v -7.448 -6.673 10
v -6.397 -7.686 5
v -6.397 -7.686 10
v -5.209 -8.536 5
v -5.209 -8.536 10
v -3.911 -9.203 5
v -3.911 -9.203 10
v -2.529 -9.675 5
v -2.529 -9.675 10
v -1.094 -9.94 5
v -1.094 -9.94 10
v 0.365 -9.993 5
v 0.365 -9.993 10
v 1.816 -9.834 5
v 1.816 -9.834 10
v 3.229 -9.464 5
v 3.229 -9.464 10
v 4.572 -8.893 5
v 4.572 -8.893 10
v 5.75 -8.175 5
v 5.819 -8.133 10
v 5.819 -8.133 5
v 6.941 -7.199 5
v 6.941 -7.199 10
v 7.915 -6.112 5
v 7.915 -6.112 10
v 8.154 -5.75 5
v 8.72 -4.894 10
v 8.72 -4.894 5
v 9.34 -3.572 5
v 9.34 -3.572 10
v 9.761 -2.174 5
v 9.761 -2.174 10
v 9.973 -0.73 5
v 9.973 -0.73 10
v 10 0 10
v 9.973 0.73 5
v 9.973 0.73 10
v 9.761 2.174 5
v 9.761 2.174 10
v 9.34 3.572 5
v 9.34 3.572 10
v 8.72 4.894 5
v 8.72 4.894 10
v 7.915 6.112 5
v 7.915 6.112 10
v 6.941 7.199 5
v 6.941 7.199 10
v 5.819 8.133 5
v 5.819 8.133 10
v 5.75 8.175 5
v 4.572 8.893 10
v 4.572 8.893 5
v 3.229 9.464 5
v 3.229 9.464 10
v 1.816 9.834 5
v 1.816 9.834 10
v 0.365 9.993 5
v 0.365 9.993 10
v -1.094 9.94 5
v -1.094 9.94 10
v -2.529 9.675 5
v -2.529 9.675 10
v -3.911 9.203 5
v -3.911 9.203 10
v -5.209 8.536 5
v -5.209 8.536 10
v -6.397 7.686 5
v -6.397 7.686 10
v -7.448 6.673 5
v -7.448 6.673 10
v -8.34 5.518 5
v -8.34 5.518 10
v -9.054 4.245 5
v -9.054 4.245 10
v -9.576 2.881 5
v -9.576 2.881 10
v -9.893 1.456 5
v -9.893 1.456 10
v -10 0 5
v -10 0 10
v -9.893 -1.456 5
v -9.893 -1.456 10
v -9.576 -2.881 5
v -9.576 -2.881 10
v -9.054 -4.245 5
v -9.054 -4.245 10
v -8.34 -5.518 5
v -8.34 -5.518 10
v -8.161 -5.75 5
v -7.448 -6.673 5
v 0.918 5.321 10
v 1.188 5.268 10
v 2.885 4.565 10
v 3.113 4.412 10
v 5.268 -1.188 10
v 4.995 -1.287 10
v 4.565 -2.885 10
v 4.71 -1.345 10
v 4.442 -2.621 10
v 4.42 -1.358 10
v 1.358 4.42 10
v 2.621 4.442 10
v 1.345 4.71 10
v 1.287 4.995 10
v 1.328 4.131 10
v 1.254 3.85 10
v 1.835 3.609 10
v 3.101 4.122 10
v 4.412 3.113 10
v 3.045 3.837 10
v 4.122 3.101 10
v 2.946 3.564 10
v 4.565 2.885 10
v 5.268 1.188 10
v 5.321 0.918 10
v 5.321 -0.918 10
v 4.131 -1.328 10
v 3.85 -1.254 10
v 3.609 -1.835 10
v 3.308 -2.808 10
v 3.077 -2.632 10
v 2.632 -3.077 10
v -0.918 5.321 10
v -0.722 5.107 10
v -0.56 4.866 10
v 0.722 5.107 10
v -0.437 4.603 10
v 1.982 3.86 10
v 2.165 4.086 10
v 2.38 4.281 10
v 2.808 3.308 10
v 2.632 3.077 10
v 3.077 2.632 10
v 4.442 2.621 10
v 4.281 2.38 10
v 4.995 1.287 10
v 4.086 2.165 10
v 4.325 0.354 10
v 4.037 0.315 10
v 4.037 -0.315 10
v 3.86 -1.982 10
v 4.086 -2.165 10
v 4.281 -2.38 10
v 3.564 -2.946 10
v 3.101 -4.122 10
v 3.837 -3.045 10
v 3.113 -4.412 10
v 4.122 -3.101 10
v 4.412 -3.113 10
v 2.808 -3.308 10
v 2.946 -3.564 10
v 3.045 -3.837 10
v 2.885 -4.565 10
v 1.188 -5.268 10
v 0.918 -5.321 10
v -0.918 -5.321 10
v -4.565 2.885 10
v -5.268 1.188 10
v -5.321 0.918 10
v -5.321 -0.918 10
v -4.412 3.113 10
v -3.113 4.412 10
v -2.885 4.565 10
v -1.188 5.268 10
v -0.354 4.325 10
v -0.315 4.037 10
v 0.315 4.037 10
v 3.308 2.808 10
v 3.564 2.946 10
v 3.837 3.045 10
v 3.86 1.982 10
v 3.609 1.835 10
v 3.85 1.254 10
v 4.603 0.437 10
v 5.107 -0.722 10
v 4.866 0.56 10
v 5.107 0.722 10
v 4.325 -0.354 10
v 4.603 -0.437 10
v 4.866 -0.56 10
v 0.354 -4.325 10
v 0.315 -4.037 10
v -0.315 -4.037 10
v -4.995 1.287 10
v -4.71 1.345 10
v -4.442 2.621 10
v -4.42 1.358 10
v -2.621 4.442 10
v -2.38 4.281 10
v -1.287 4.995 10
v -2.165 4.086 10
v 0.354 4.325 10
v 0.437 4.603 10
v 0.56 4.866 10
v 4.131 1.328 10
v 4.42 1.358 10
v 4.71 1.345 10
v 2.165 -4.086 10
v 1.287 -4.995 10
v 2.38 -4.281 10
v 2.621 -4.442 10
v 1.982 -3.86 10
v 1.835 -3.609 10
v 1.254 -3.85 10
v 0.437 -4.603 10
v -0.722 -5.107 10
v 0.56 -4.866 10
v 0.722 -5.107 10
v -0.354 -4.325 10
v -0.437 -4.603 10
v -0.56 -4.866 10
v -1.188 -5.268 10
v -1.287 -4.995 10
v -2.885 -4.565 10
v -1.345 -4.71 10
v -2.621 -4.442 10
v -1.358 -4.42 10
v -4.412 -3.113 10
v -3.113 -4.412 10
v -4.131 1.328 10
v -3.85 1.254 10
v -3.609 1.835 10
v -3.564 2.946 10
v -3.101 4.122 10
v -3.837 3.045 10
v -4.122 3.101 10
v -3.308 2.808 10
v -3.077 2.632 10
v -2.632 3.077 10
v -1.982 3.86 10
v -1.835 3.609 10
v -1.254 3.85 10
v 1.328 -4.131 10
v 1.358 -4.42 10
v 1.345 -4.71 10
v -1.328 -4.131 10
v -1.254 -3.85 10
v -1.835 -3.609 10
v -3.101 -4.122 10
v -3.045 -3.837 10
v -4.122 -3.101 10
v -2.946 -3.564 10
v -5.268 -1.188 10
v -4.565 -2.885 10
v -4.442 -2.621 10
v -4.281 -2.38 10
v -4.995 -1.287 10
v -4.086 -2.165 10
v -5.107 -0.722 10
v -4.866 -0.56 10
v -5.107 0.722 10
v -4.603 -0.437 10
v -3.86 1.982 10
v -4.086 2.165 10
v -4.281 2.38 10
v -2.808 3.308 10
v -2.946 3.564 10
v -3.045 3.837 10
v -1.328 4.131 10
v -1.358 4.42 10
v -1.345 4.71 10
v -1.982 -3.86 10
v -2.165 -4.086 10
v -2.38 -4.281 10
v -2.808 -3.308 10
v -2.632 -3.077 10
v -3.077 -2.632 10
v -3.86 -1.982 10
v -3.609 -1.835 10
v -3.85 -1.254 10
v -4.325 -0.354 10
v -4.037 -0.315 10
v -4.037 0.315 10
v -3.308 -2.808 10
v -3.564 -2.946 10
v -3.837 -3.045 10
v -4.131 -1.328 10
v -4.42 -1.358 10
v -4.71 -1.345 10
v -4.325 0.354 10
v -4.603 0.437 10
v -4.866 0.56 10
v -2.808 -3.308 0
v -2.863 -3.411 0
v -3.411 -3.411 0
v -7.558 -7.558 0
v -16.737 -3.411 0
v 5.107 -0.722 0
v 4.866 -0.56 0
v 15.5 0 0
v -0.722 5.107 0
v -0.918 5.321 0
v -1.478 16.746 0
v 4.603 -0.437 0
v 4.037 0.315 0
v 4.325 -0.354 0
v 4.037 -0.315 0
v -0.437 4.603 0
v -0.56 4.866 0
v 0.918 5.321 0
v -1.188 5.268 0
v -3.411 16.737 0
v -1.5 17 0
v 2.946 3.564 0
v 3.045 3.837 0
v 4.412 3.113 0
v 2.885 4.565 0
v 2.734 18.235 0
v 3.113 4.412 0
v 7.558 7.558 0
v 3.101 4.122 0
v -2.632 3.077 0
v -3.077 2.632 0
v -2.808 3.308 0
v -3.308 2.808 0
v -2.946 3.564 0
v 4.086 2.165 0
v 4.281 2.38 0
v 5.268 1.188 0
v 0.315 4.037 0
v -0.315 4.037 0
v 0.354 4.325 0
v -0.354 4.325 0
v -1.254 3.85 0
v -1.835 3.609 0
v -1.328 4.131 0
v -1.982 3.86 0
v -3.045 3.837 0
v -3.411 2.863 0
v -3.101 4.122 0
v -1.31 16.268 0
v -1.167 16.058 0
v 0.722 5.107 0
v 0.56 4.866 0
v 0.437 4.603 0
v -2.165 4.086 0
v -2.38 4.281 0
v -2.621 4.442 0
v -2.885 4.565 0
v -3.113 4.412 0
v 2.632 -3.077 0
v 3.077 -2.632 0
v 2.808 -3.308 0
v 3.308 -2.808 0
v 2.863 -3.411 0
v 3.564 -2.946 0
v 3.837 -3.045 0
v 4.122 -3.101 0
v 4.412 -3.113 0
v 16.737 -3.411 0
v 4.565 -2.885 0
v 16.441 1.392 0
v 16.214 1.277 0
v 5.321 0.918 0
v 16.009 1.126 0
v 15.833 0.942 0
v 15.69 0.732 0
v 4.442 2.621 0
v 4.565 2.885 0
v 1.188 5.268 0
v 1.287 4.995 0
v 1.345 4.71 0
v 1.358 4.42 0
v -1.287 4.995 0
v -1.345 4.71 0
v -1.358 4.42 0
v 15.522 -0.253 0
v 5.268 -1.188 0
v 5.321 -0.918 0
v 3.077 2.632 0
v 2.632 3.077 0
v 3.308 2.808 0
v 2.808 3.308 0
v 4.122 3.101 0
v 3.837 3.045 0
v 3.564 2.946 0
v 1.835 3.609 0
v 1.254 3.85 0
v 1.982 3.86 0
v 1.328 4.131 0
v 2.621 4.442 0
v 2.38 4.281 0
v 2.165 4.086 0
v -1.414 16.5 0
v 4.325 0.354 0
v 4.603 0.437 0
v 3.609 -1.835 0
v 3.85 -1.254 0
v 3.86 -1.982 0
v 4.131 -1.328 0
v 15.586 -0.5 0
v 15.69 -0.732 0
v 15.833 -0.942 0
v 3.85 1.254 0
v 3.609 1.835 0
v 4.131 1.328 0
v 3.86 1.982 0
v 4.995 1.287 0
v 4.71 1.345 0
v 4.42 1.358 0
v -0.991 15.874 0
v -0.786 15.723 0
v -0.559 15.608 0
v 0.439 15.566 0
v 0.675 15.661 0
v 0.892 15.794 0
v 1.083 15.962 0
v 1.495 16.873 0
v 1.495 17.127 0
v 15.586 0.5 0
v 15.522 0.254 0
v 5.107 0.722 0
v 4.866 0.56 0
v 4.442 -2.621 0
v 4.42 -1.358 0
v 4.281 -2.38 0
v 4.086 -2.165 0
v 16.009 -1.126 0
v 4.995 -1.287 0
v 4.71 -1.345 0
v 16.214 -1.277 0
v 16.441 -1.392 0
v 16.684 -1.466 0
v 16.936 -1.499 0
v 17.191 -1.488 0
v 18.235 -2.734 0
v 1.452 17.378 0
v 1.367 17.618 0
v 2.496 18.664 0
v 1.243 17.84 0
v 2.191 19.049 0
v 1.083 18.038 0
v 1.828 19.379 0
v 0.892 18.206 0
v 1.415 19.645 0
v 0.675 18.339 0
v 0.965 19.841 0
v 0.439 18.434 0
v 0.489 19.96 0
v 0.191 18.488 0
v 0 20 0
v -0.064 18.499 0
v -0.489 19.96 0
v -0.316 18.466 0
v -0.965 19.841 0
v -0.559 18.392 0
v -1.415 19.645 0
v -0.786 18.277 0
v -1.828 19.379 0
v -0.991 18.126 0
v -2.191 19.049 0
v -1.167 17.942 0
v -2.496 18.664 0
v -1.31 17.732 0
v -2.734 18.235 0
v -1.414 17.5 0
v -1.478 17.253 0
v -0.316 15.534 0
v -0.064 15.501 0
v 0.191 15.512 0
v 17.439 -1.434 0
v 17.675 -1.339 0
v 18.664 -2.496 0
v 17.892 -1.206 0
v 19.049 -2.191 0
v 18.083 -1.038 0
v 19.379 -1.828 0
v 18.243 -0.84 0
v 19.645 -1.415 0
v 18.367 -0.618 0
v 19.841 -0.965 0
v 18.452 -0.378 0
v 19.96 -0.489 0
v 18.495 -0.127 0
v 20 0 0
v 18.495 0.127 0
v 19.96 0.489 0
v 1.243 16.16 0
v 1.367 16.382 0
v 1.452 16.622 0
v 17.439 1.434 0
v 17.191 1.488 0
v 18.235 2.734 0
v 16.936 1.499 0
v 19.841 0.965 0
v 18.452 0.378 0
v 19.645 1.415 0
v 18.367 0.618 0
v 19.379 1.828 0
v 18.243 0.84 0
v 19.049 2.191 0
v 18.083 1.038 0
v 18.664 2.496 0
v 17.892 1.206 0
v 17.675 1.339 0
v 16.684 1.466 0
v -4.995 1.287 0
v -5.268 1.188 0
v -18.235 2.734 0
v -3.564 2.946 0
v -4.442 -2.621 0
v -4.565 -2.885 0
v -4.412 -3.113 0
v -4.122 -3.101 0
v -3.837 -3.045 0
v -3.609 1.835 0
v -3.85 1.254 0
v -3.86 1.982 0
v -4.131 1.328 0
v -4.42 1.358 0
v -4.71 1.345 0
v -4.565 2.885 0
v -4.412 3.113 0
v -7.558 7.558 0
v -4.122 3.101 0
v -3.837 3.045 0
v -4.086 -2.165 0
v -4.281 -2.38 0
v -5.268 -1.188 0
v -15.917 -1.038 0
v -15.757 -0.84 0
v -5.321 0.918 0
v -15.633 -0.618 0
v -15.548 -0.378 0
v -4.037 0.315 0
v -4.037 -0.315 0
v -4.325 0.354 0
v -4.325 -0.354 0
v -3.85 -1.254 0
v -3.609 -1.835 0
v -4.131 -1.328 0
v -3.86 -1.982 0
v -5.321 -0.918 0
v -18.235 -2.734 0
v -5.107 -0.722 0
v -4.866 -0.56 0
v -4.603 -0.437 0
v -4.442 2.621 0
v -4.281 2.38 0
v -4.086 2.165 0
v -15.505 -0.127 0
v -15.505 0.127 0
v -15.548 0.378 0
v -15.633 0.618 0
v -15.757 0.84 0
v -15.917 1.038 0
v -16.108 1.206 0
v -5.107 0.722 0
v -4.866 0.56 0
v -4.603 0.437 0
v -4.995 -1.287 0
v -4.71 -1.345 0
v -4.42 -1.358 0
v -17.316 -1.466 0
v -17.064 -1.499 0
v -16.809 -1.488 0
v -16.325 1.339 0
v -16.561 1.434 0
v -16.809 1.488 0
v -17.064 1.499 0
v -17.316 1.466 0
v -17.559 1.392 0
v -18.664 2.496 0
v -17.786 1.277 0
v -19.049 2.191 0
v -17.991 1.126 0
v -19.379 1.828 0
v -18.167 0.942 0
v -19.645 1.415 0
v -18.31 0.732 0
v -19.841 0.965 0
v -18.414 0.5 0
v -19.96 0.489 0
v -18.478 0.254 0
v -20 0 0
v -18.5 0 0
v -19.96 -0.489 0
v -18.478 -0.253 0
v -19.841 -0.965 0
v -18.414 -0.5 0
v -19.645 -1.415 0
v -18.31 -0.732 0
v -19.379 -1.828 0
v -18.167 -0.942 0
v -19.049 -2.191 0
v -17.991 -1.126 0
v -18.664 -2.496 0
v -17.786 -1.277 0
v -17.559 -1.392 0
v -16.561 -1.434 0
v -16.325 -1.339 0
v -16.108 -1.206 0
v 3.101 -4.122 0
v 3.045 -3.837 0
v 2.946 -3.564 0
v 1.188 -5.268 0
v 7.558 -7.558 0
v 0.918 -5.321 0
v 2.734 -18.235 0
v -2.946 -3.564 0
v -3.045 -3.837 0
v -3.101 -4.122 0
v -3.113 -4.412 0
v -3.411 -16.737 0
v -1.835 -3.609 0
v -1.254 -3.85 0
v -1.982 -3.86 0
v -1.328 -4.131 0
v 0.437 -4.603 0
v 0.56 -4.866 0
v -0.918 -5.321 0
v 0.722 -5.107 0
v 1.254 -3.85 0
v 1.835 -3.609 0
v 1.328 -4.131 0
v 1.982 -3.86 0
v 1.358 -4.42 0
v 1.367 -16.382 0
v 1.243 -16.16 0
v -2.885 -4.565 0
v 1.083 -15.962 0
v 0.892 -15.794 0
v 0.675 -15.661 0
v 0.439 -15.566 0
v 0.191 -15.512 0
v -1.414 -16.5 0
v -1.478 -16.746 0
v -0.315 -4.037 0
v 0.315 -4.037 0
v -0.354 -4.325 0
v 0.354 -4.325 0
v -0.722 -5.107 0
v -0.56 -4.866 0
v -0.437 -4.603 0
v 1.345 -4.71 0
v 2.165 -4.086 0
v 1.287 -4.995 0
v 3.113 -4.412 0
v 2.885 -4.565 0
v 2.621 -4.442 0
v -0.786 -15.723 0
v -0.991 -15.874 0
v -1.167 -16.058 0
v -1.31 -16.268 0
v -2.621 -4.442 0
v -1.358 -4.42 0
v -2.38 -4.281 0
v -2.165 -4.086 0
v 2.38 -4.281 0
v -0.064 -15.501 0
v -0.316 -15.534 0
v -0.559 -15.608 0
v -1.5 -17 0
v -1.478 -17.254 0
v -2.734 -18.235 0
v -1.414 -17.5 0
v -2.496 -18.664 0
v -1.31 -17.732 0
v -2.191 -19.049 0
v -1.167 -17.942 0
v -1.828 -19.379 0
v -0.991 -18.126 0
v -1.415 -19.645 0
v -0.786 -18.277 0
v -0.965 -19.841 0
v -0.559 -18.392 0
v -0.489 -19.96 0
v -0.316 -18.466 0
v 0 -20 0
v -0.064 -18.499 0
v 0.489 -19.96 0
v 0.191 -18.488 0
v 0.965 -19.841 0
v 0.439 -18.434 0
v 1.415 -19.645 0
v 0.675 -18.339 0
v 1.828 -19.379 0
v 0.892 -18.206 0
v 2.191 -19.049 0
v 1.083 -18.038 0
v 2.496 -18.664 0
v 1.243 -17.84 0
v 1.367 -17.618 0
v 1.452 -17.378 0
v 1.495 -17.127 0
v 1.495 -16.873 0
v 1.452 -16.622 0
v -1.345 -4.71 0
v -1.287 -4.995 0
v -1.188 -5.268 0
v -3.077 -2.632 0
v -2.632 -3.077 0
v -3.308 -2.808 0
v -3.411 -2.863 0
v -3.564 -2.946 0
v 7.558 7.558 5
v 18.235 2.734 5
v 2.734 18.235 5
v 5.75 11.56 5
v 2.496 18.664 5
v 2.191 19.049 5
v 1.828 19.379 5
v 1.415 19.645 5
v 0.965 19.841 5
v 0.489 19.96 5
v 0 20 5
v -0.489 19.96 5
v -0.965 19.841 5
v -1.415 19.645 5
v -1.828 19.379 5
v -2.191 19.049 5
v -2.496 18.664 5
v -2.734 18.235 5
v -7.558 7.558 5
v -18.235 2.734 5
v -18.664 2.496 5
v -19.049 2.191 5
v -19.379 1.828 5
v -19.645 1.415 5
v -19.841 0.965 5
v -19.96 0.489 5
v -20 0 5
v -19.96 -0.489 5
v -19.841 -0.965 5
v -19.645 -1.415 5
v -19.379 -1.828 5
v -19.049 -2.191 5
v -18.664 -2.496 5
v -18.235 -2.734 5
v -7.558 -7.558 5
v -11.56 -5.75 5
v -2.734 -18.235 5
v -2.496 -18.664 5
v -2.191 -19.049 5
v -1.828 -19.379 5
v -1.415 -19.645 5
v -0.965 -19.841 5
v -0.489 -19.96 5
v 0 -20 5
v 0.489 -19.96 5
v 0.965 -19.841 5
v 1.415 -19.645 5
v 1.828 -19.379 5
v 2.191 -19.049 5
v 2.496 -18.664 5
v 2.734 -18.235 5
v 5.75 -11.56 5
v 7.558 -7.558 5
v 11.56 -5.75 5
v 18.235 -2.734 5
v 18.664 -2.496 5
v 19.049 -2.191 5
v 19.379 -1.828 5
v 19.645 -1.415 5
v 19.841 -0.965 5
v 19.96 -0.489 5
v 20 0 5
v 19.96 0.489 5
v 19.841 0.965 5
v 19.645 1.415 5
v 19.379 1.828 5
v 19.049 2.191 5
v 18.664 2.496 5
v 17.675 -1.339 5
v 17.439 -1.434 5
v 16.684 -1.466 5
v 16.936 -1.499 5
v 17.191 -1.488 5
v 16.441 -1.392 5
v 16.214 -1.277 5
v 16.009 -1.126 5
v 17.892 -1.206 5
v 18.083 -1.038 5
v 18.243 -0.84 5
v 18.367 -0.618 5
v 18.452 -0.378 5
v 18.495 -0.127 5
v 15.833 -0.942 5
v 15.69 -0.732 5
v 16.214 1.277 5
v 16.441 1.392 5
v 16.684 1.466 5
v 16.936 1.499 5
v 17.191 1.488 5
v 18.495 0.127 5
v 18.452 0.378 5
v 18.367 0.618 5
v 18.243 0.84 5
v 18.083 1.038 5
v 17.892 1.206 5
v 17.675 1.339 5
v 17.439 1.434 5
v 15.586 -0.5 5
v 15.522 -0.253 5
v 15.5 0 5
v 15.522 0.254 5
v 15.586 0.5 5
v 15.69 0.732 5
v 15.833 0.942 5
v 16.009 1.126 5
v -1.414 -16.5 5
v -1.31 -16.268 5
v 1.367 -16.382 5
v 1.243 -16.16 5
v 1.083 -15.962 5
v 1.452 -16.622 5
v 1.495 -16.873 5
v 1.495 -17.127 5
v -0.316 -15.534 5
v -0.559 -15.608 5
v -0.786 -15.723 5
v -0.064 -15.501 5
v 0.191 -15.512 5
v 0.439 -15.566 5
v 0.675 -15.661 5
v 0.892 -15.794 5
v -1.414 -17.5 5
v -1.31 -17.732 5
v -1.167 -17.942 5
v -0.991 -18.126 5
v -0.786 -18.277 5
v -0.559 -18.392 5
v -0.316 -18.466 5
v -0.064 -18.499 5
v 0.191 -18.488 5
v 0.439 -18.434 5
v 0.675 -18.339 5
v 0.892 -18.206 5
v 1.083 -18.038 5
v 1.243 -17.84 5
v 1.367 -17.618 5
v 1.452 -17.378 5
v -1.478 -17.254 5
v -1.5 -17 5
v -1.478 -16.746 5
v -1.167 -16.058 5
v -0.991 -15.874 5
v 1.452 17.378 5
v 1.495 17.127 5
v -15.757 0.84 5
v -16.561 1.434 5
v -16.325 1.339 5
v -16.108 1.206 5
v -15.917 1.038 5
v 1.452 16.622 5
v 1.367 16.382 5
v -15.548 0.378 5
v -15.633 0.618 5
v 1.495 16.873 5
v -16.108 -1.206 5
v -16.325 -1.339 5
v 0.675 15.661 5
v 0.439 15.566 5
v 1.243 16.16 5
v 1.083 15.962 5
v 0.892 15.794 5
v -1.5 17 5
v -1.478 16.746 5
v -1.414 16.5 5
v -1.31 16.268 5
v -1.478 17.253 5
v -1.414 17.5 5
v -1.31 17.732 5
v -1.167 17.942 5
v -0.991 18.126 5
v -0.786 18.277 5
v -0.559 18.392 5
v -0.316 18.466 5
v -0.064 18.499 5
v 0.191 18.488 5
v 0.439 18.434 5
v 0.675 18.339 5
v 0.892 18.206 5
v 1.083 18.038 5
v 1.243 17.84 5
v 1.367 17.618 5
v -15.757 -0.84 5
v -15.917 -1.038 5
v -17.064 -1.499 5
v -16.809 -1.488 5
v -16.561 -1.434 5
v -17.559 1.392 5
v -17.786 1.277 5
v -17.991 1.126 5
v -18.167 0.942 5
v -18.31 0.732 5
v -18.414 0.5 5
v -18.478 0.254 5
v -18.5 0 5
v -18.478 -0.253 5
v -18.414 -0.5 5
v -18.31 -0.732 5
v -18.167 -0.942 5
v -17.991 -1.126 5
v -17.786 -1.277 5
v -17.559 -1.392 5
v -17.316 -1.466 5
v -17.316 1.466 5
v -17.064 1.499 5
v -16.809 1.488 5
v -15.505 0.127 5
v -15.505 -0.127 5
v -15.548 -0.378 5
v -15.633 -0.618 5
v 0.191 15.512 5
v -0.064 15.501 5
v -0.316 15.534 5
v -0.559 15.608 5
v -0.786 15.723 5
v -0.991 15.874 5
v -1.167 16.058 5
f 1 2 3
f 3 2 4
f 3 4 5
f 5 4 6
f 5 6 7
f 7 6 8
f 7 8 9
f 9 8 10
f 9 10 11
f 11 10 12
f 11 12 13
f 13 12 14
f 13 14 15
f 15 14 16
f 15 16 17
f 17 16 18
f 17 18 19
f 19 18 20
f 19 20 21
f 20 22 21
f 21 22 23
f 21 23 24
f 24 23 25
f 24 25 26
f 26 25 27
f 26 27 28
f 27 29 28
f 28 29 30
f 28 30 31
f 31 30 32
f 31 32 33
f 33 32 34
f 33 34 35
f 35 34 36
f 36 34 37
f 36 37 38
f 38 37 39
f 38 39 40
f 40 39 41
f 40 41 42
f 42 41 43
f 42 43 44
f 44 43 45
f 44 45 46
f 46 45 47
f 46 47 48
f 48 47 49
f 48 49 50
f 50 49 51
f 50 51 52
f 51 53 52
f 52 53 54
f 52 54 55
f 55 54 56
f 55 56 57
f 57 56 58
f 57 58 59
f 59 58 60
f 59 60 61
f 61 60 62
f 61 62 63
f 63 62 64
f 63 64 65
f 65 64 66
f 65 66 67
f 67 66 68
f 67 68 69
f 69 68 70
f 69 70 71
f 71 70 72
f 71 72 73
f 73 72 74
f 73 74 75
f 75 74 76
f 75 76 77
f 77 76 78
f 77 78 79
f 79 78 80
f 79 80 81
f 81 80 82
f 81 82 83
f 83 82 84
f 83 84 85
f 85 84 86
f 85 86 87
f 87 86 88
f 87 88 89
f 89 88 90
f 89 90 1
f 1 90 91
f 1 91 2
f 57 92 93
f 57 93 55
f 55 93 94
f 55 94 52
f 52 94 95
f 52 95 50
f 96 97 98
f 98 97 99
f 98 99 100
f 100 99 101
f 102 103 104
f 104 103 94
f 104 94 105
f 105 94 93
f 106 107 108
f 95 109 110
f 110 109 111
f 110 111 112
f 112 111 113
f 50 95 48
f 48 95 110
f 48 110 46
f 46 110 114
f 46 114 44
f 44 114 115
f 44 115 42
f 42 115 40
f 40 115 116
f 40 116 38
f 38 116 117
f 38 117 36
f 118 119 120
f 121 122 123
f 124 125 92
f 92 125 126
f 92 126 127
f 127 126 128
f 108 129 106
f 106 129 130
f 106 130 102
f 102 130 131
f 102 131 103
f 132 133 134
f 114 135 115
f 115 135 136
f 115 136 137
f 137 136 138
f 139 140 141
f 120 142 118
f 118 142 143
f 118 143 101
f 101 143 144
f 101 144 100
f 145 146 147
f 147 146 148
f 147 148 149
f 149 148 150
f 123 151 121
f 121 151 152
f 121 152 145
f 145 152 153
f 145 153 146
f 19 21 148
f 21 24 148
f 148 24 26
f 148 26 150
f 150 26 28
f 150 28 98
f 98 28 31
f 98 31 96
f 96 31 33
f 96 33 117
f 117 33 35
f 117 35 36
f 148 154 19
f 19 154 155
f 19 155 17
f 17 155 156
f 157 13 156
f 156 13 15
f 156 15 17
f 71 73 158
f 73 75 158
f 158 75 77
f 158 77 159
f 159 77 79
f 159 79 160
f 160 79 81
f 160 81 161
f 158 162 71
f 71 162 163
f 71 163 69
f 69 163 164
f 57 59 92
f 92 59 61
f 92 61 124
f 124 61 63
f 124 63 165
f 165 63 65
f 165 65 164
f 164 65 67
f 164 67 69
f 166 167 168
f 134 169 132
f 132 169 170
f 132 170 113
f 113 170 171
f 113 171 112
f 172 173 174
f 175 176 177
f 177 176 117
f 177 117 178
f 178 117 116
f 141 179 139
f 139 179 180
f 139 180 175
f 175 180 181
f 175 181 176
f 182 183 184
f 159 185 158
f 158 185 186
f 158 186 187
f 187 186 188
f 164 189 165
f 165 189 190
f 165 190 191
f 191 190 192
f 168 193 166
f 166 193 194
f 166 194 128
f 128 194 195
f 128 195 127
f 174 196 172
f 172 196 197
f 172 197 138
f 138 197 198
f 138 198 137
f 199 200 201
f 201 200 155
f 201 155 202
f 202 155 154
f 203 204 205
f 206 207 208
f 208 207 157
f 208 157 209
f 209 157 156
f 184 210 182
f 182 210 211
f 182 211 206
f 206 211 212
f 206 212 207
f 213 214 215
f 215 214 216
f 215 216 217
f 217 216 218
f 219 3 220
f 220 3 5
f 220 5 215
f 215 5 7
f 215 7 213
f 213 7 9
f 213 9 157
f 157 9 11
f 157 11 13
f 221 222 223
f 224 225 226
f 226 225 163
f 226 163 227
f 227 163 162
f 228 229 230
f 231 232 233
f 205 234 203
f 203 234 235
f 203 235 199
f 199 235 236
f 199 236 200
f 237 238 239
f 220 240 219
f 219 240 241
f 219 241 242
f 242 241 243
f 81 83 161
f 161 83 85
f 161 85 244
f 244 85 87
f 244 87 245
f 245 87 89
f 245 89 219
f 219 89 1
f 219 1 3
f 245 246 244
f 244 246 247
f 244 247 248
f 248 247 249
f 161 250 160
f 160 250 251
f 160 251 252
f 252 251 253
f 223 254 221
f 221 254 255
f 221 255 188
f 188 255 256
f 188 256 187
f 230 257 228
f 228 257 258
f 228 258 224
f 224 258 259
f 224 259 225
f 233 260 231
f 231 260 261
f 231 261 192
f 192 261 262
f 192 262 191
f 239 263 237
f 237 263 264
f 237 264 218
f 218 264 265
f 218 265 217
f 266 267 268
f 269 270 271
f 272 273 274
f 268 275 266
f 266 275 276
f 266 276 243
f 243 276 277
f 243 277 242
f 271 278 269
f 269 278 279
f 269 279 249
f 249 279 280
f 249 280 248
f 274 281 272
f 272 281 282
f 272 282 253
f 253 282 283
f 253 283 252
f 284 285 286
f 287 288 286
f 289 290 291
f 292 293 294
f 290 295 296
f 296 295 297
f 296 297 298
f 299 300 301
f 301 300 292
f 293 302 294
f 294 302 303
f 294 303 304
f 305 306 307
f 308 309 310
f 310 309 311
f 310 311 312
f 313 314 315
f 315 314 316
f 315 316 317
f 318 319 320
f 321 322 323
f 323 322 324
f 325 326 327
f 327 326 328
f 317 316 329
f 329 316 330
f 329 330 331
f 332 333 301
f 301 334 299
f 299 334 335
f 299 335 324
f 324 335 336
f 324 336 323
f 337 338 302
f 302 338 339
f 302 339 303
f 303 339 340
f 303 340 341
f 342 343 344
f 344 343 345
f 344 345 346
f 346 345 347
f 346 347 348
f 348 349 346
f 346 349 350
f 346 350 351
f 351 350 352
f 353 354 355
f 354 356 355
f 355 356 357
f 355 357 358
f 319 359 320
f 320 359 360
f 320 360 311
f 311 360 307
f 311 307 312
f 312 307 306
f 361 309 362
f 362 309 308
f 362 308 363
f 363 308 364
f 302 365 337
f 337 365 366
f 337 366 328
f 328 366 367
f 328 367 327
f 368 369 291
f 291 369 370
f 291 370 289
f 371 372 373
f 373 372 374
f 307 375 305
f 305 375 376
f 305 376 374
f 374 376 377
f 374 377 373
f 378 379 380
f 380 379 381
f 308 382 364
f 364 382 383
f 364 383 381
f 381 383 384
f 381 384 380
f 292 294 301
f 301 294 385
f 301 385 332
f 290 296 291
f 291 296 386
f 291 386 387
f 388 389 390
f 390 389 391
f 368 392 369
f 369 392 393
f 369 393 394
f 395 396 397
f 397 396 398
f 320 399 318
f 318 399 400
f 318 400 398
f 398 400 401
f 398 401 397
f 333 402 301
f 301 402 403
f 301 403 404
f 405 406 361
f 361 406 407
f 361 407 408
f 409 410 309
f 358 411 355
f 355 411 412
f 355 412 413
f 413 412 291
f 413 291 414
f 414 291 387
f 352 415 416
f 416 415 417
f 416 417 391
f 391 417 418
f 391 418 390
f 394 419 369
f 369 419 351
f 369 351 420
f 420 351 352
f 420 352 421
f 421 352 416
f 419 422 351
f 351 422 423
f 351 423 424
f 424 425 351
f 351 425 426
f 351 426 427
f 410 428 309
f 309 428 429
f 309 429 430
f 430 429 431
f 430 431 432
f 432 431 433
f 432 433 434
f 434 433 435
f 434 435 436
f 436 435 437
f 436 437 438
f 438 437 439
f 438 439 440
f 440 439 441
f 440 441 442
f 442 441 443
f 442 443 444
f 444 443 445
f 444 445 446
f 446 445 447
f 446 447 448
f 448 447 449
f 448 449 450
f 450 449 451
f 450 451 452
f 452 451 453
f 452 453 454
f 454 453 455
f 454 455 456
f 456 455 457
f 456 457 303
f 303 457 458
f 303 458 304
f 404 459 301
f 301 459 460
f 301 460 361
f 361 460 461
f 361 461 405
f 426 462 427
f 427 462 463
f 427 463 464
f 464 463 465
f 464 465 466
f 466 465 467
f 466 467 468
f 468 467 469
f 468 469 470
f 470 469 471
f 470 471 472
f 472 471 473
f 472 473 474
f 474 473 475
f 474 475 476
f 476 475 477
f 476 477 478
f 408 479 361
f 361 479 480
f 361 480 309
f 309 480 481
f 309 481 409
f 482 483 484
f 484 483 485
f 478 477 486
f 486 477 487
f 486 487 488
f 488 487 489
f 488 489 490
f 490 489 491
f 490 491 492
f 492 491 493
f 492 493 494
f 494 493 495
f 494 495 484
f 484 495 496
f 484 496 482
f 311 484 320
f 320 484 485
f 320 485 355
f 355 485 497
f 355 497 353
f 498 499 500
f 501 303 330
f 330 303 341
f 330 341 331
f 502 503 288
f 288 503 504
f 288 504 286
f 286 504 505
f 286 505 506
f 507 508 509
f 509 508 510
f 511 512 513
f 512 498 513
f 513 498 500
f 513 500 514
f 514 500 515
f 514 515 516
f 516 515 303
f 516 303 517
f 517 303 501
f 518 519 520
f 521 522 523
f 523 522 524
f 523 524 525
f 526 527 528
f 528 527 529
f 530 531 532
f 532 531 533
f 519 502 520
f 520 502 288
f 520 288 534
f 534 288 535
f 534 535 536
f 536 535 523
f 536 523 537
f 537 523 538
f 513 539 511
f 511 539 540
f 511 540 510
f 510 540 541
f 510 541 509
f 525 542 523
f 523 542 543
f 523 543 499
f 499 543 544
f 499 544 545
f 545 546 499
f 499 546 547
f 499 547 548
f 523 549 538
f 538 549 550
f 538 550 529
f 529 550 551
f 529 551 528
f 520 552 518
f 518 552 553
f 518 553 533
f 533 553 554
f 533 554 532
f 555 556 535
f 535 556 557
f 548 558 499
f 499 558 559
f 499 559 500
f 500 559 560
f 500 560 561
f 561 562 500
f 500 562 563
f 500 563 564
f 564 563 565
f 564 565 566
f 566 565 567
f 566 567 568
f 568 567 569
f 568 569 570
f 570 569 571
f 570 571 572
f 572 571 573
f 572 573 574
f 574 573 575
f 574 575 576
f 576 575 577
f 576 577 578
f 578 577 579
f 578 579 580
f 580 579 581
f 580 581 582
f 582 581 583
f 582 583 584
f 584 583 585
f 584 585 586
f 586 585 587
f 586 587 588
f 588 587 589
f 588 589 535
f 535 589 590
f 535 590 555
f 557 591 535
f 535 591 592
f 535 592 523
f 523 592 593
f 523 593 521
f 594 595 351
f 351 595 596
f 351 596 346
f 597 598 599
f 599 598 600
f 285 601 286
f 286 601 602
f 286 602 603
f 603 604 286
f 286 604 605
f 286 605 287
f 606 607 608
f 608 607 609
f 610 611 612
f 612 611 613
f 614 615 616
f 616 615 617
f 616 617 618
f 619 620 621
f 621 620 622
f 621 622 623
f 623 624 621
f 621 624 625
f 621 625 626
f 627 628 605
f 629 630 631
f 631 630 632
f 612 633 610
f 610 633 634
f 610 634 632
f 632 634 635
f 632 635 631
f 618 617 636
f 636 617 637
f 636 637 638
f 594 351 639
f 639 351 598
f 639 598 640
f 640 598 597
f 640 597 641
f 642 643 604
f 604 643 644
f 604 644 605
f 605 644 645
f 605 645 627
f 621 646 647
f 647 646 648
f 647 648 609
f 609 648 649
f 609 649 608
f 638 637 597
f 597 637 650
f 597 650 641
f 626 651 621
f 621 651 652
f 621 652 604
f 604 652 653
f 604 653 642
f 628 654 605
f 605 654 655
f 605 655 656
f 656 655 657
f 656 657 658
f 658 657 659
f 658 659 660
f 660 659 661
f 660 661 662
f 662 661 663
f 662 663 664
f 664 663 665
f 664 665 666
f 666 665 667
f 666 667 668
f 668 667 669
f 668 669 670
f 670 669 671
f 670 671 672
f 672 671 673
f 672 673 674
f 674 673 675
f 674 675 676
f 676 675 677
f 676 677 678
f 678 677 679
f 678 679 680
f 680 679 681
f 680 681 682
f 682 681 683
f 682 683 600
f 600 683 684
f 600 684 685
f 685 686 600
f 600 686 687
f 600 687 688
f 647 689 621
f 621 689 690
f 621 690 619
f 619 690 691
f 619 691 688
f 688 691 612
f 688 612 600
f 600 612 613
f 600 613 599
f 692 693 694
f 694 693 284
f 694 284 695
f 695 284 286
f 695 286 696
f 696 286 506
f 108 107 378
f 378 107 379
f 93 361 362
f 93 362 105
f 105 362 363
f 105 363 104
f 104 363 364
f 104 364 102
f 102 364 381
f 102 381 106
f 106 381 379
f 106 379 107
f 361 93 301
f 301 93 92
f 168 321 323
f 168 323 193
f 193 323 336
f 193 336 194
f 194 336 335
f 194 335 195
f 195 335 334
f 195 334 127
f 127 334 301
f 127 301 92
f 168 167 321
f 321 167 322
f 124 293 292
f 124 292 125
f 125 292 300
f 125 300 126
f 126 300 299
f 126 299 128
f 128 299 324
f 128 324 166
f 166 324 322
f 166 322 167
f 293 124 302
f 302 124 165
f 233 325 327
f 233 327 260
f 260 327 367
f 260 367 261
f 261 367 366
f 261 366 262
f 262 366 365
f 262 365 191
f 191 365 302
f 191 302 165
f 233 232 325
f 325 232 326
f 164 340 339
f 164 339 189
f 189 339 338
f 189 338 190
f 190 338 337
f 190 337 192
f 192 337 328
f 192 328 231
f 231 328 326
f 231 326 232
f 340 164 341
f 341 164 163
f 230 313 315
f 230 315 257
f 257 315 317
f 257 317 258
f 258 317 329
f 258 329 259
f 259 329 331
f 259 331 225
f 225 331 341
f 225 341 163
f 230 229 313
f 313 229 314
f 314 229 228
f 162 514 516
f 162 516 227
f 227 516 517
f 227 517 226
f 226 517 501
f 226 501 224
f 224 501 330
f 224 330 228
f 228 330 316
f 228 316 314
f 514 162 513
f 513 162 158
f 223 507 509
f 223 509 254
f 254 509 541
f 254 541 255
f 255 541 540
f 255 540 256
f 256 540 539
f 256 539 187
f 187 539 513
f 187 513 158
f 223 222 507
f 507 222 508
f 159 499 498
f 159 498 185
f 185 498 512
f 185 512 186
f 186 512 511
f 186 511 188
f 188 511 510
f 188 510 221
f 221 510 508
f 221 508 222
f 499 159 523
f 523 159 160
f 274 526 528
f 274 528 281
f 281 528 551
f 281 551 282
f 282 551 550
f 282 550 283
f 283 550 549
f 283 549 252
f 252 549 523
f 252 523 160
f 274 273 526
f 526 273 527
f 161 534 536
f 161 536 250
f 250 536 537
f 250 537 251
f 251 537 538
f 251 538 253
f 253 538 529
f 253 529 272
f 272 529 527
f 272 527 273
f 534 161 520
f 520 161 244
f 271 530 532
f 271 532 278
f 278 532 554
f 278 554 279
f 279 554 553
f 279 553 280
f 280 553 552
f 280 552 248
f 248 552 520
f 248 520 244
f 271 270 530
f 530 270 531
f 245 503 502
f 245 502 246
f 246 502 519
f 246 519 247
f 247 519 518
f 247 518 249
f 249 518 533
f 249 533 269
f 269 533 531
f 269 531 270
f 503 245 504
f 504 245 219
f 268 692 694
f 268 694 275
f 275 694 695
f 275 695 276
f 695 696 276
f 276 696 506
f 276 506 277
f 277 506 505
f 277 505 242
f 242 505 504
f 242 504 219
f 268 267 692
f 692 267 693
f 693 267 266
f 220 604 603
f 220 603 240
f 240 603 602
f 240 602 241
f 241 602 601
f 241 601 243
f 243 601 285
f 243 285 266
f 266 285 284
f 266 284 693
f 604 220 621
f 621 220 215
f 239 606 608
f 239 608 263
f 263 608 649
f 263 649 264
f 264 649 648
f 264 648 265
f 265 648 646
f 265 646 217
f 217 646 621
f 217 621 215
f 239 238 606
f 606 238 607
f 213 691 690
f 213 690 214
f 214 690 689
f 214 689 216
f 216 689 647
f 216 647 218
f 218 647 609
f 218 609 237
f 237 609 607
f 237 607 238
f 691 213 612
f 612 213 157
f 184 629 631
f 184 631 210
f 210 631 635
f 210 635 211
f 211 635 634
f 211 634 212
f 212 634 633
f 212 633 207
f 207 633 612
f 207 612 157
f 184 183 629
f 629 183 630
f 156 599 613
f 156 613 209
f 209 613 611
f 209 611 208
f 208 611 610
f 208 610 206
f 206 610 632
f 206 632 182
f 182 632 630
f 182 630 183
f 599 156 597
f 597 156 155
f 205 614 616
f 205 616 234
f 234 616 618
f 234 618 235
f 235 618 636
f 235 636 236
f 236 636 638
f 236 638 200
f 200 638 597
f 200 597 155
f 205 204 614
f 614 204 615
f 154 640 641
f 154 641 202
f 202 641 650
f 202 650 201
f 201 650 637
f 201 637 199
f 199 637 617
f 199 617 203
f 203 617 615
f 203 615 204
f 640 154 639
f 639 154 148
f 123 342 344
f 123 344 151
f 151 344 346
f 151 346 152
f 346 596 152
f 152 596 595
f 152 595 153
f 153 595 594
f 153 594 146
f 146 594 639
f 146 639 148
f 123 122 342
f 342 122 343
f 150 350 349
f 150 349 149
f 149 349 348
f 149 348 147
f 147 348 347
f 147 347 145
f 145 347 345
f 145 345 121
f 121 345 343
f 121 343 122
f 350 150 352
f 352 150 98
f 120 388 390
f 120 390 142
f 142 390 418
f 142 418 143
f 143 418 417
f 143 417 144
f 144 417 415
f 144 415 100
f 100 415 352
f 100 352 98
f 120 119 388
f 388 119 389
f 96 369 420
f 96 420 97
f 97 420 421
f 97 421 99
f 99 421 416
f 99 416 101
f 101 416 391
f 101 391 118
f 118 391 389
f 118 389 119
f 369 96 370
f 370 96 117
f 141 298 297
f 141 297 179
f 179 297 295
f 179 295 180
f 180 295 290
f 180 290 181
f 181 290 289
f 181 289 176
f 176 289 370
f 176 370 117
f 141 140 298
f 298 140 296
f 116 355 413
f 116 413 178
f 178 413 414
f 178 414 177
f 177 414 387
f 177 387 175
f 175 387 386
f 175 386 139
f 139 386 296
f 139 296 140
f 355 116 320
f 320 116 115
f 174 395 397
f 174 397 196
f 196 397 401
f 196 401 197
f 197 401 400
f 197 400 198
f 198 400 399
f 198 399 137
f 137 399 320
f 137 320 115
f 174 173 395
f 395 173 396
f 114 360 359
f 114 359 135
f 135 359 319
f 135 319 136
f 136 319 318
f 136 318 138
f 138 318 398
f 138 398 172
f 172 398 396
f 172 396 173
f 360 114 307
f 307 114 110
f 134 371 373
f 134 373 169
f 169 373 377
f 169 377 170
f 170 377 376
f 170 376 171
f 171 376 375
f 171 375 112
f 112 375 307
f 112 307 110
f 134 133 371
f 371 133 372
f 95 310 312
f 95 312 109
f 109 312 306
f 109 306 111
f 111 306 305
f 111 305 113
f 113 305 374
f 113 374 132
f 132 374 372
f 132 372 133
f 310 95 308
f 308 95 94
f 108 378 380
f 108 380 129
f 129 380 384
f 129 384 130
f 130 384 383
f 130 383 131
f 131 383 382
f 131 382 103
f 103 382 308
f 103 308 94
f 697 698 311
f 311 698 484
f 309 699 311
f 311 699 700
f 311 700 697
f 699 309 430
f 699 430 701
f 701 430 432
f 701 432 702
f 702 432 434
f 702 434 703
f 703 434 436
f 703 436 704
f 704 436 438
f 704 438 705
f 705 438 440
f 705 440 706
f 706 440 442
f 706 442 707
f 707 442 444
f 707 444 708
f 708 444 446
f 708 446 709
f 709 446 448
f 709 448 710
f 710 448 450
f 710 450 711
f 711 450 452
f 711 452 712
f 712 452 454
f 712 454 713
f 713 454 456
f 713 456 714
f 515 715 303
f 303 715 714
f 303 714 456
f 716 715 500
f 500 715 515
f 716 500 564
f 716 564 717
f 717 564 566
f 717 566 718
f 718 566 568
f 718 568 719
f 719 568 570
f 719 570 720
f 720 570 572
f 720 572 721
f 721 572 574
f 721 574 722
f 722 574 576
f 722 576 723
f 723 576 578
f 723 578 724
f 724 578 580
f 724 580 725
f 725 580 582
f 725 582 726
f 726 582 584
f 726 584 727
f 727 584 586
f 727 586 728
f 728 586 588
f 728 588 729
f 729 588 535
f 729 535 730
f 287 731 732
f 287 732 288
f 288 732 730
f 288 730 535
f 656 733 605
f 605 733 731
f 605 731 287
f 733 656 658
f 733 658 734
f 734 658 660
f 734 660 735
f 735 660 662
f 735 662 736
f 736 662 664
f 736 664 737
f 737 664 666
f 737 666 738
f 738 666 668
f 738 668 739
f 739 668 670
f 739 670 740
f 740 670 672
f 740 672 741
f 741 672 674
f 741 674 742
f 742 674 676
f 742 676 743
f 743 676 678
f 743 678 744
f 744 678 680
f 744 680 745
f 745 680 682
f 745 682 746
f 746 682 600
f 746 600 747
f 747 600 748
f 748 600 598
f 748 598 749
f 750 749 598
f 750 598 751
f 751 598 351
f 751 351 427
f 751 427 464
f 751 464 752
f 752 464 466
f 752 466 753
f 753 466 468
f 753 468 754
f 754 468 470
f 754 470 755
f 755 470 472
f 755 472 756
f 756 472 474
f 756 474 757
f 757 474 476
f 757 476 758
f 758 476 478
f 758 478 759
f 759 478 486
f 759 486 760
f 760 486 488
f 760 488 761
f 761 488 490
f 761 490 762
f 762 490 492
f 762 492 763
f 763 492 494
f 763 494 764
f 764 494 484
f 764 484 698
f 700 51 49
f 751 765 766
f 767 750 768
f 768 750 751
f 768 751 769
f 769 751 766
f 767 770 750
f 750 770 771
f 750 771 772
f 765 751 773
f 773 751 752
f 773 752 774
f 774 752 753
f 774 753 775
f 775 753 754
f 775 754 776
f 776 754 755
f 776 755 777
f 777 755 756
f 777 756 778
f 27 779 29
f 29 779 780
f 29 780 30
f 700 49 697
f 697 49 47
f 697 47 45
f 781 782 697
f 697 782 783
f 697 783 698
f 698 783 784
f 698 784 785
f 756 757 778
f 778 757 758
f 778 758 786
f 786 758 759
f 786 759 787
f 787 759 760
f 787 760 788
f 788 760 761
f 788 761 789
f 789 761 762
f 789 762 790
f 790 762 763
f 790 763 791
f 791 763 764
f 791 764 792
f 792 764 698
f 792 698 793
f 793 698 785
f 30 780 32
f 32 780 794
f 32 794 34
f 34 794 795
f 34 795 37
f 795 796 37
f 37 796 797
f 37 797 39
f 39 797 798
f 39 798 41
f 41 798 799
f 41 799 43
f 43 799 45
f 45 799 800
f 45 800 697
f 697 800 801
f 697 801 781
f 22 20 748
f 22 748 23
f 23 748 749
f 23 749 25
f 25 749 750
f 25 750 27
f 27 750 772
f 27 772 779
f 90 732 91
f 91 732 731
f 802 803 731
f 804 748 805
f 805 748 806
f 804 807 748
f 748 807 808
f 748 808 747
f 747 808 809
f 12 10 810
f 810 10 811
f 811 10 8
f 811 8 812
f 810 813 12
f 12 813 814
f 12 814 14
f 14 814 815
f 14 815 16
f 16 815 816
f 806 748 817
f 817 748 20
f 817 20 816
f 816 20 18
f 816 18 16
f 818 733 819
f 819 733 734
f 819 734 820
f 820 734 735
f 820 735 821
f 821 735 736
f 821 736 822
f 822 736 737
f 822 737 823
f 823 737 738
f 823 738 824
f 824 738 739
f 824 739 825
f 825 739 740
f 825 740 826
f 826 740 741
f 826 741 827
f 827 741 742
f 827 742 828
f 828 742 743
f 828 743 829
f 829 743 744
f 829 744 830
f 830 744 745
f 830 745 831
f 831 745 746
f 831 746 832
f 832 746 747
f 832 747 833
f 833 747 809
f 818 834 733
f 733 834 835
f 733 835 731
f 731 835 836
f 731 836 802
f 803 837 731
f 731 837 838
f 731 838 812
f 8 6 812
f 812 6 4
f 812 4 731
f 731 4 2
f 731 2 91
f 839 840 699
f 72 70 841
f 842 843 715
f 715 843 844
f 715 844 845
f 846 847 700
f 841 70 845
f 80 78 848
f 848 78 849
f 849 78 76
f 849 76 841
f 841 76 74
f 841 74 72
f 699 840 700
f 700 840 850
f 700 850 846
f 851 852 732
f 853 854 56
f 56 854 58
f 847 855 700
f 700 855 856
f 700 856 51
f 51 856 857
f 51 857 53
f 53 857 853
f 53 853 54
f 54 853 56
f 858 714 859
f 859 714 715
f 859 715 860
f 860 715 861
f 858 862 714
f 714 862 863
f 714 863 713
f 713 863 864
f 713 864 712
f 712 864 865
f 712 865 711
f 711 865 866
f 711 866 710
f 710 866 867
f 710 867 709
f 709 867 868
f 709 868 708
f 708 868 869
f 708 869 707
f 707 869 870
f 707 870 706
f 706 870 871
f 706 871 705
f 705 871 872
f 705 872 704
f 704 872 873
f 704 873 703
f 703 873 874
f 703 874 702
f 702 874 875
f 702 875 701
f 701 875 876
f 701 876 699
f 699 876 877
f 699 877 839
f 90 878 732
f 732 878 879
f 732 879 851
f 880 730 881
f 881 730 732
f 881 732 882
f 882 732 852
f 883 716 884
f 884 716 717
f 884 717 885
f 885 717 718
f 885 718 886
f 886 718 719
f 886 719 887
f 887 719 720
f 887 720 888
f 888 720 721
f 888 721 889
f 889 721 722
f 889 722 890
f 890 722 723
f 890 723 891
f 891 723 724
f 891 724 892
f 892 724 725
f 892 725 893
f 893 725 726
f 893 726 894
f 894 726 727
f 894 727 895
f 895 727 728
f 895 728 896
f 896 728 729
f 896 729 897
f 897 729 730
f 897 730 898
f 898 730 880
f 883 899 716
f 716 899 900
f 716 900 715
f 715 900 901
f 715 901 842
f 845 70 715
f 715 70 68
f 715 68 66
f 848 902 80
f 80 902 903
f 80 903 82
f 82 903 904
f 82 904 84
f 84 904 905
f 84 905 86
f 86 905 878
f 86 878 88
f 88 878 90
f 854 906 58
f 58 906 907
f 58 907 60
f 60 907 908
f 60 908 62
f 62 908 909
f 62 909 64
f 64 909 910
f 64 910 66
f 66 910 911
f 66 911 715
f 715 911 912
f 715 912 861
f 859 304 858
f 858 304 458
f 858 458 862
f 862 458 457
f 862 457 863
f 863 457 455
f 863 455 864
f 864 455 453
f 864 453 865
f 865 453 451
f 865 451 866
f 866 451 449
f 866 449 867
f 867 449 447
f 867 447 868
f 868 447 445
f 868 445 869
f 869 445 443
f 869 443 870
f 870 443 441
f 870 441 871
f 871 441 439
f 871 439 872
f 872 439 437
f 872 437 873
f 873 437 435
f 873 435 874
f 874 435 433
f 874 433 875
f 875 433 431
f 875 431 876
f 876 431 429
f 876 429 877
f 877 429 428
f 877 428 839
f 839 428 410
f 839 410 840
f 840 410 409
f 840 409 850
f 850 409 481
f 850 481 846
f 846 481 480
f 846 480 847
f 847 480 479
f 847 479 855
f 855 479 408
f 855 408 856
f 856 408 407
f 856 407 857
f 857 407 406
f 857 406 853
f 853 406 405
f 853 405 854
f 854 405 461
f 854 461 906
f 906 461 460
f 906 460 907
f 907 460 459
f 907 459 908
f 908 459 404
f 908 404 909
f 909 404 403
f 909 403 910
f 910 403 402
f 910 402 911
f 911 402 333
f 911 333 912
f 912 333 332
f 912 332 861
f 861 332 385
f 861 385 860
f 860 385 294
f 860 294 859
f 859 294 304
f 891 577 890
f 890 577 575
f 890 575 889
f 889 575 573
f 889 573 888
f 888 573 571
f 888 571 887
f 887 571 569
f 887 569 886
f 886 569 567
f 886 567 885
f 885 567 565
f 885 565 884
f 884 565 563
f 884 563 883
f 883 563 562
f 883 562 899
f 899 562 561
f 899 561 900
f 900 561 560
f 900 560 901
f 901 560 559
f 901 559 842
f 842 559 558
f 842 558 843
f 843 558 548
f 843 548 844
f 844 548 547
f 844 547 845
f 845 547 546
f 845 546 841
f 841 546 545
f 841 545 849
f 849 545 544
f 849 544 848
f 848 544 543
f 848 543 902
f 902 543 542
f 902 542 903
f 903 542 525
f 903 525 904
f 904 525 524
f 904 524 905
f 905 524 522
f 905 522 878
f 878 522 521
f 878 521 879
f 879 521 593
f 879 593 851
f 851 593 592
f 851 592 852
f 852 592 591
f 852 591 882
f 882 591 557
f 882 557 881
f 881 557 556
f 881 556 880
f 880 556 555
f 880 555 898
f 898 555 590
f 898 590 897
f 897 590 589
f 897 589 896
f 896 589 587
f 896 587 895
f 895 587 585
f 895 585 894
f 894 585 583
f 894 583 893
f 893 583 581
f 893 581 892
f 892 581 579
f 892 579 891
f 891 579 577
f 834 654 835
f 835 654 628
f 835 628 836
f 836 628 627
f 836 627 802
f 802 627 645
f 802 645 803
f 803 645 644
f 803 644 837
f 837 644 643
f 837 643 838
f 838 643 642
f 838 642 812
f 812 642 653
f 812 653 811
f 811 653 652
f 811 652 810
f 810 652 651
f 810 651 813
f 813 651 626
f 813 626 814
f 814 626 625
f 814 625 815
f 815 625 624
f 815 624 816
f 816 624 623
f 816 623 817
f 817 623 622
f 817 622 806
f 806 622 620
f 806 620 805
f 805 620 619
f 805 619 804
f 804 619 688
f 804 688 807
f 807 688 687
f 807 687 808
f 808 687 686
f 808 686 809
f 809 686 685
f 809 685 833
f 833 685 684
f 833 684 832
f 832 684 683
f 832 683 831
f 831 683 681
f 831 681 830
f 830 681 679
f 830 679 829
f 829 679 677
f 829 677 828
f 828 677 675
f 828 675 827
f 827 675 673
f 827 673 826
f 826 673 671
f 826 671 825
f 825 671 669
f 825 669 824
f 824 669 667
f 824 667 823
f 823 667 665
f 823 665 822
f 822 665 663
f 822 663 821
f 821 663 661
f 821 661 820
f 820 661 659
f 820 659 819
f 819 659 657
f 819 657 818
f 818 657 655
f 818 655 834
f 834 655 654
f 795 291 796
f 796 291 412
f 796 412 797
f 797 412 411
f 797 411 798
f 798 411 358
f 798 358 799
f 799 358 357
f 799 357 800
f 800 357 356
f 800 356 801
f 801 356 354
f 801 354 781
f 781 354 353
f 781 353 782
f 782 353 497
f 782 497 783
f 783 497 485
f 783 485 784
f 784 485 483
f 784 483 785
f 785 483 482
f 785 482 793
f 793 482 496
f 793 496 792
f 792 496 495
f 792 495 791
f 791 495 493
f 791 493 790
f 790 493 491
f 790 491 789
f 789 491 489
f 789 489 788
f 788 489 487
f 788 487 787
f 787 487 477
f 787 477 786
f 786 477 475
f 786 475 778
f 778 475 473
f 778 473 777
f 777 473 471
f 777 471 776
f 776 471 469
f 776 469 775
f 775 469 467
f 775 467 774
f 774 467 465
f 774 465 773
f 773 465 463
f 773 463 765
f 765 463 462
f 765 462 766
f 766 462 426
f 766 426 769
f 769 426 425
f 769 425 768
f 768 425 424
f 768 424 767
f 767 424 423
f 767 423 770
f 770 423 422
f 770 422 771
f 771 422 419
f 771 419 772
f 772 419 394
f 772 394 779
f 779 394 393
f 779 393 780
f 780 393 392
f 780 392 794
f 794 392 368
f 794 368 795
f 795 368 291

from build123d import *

# Parameters (mm, degrees)
CROQUIS1_R                 = 10
CROQUIS1_R_2               = 2
SALIENTE_EXTRUIR1_DEPTH    = 10
CORTAR_EXTRUIR1_DEPTH      = 10
CORTAR_EXTRUIR1_DEPTH_BACK = 20
CROQUIS3_R                 = 1.5
CROQUIS3_R_2               = 10
SALIENTE_EXTRUIR2_DEPTH    = 5


with BuildPart() as part:
    # Croquis1 → Saliente-Extruir1 (new body)
    with BuildSketch(Plane.XY):
        Circle(CROQUIS1_R)
        Circle(CROQUIS1_R_2, mode=Mode.SUBTRACT)
    extrude(amount=SALIENTE_EXTRUIR1_DEPTH)

    # Croquis2 → Cortar-Extruir1 (cut, two sides: drawn at the far end of the back side and taken through both)
    with BuildSketch(Plane.XY.offset(10).offset(-CORTAR_EXTRUIR1_DEPTH_BACK)):
        with BuildLine():
            Line((0.91835658, 5.32133641), (1.187936434, 5.267713643))
            ThreePointArc((1.187936434, 5.267713643), (1.356901071, 4.56513254), (1.254199065, 3.849855284))
            ThreePointArc((1.254199065, 3.849855284), (1.549485218, 3.740788227), (1.835406113, 3.609111442))
            ThreePointArc((1.835406113, 3.609111442), (2.268562227, 4.187510125), (2.88483813, 4.564833947))
            Line((2.88483813, 4.564833947), (3.113376895, 4.412129226))
            ThreePointArc((3.113376895, 4.412129226), (3.000613717, 3.698368958), (2.63200468, 3.076841296))
            ThreePointArc((2.63200468, 3.076841296), (2.863075357, 2.863075357), (3.076841296, 2.63200468))
            ThreePointArc((3.076841296, 2.63200468), (3.698368958, 3.000613717), (4.412129226, 3.113376895))
            Line((4.412129226, 3.113376895), (4.564833947, 2.88483813))
            ThreePointArc((4.564833947, 2.88483813), (4.187510125, 2.268562227), (3.609111442, 1.835406113))
            ThreePointArc((3.609111442, 1.835406113), (3.740788227, 1.549485218), (3.849855284, 1.254199065))
            ThreePointArc((3.849855284, 1.254199065), (4.56513254, 1.356901071), (5.267713643, 1.187936434))
            Line((5.267713643, 1.187936434), (5.32133641, 0.91835658))
            ThreePointArc((5.32133641, 0.91835658), (4.736896076, 0.493387462), (4.036763703, 0.314546988))
            ThreePointArc((4.036763703, 0.314546988), (4.049, 0), (4.036763703, -0.314546988))
            ThreePointArc((4.036763703, -0.314546988), (4.736896076, -0.493387462), (5.32133641, -0.91835658))
            Line((5.32133641, -0.91835658), (5.267713643, -1.187936434))
            ThreePointArc((5.267713643, -1.187936434), (4.56513254, -1.356901071), (3.849855284, -1.254199065))
            ThreePointArc((3.849855284, -1.254199065), (3.740788227, -1.549485218), (3.609111442, -1.835406113))
            ThreePointArc((3.609111442, -1.835406113), (4.187510125, -2.268562227), (4.564833947, -2.88483813))
            Line((4.564833947, -2.88483813), (4.412129226, -3.113376895))
            ThreePointArc((4.412129226, -3.113376895), (3.698368958, -3.000613717), (3.076841296, -2.63200468))
            ThreePointArc((3.076841296, -2.63200468), (2.863075357, -2.863075357), (2.63200468, -3.076841296))
            ThreePointArc((2.63200468, -3.076841296), (3.000613717, -3.698368958), (3.113376895, -4.412129226))
            Line((3.113376895, -4.412129226), (2.88483813, -4.564833947))
            ThreePointArc((2.88483813, -4.564833947), (2.268562227, -4.187510125), (1.835406113, -3.609111442))
            ThreePointArc((1.835406113, -3.609111442), (1.549485218, -3.740788227), (1.254199065, -3.849855284))
            ThreePointArc((1.254199065, -3.849855284), (1.356901071, -4.56513254), (1.187936434, -5.267713643))
            Line((1.187936434, -5.267713643), (0.91835658, -5.32133641))
            ThreePointArc((0.91835658, -5.32133641), (0.493387462, -4.736896076), (0.314546988, -4.036763703))
            ThreePointArc((0.314546988, -4.036763703), (0, -4.049), (-0.314546988, -4.036763703))
            ThreePointArc((-0.314546988, -4.036763703), (-0.493387462, -4.736896076), (-0.91835658, -5.32133641))
            Line((-0.91835658, -5.32133641), (-1.187936434, -5.267713643))
            ThreePointArc((-1.187936434, -5.267713643), (-1.356901071, -4.56513254), (-1.254199065, -3.849855284))
            ThreePointArc((-1.254199065, -3.849855284), (-1.549485218, -3.740788227), (-1.835406113, -3.609111442))
            ThreePointArc((-1.835406113, -3.609111442), (-2.268562227, -4.187510125), (-2.88483813, -4.564833947))
            Line((-2.88483813, -4.564833947), (-3.113376895, -4.412129226))
            ThreePointArc((-3.113376895, -4.412129226), (-3.000613717, -3.698368958), (-2.63200468, -3.076841296))
            ThreePointArc((-2.63200468, -3.076841296), (-2.863075357, -2.863075357), (-3.076841296, -2.63200468))
            ThreePointArc((-3.076841296, -2.63200468), (-3.698368958, -3.000613717), (-4.412129226, -3.113376895))
            Line((-4.412129226, -3.113376895), (-4.564833947, -2.88483813))
            ThreePointArc((-4.564833947, -2.88483813), (-4.187510125, -2.268562227), (-3.609111442, -1.835406113))
            ThreePointArc((-3.609111442, -1.835406113), (-3.740788227, -1.549485218), (-3.849855284, -1.254199065))
            ThreePointArc((-3.849855284, -1.254199065), (-4.56513254, -1.356901071), (-5.267713643, -1.187936434))
            Line((-5.267713643, -1.187936434), (-5.32133641, -0.91835658))
            ThreePointArc((-5.32133641, -0.91835658), (-4.736896076, -0.493387462), (-4.036763703, -0.314546988))
            ThreePointArc((-4.036763703, -0.314546988), (-4.049, 0), (-4.036763703, 0.314546988))
            ThreePointArc((-4.036763703, 0.314546988), (-4.736896076, 0.493387462), (-5.32133641, 0.91835658))
            Line((-5.32133641, 0.91835658), (-5.267713643, 1.187936434))
            ThreePointArc((-5.267713643, 1.187936434), (-4.56513254, 1.356901071), (-3.849855284, 1.254199065))
            ThreePointArc((-3.849855284, 1.254199065), (-3.740788227, 1.549485218), (-3.609111442, 1.835406113))
            ThreePointArc((-3.609111442, 1.835406113), (-4.187510125, 2.268562227), (-4.564833947, 2.88483813))
            Line((-4.564833947, 2.88483813), (-4.412129226, 3.113376895))
            ThreePointArc((-4.412129226, 3.113376895), (-3.698368958, 3.000613717), (-3.076841296, 2.63200468))
            ThreePointArc((-3.076841296, 2.63200468), (-2.863075357, 2.863075357), (-2.63200468, 3.076841296))
            ThreePointArc((-2.63200468, 3.076841296), (-3.000613717, 3.698368958), (-3.113376895, 4.412129226))
            Line((-3.113376895, 4.412129226), (-2.88483813, 4.564833947))
            ThreePointArc((-2.88483813, 4.564833947), (-2.268562227, 4.187510125), (-1.835406113, 3.609111442))
            ThreePointArc((-1.835406113, 3.609111442), (-1.549485218, 3.740788227), (-1.254199065, 3.849855284))
            ThreePointArc((-1.254199065, 3.849855284), (-1.356901071, 4.56513254), (-1.187936434, 5.267713643))
            Line((-1.187936434, 5.267713643), (-0.91835658, 5.32133641))
            ThreePointArc((-0.91835658, 5.32133641), (-0.493387462, 4.736896076), (-0.314546988, 4.036763703))
            ThreePointArc((-0.314546988, 4.036763703), (0, 4.049), (0.314546988, 4.036763703))
            ThreePointArc((0.314546988, 4.036763703), (0.493387462, 4.736896076), (0.91835658, 5.32133641))
        make_face()
    extrude(amount=CORTAR_EXTRUIR1_DEPTH + CORTAR_EXTRUIR1_DEPTH_BACK, mode=Mode.SUBTRACT)

    # Croquis3 → Saliente-Extruir2 (add)
    with BuildSketch(Plane(origin=(0, 0, 0), x_dir=(-1, 0, 0), z_dir=(0, 0, -1))):
        with BuildLine():
            Line((-2.733870597, 18.235294118), (-7.558265316, 7.558265316))
            Line((-7.558265316, 7.558265316), (-18.235294118, 2.733870597))
            ThreePointArc((-18.235294118, 2.733870597), (-20, 0), (-18.235294118, -2.733870597))
            Line((-18.235294118, -2.733870597), (-7.558265316, -7.558265316))
            Line((-7.558265316, -7.558265316), (-2.733870597, -18.235294118))
            ThreePointArc((-2.733870597, -18.235294118), (0, -20), (2.733870597, -18.235294118))
            Line((2.733870597, -18.235294118), (7.558265316, -7.558265316))
            Line((7.558265316, -7.558265316), (18.235294118, -2.733870597))
            ThreePointArc((18.235294118, -2.733870597), (20, 0), (18.235294118, 2.733870597))
            Line((18.235294118, 2.733870597), (7.558265316, 7.558265316))
            Line((7.558265316, 7.558265316), (2.733870597, 18.235294118))
            ThreePointArc((2.733870597, 18.235294118), (0, 20), (-2.733870597, 18.235294118))
        make_face()
        with Locations((0, 17)):
            Circle(CROQUIS3_R, mode=Mode.SUBTRACT)
        with Locations((17, 0)):
            Circle(CROQUIS3_R, mode=Mode.SUBTRACT)
        Circle(CROQUIS3_R_2, mode=Mode.SUBTRACT)
        with Locations((0, -17)):
            Circle(CROQUIS3_R, mode=Mode.SUBTRACT)
        with Locations((-17, 0)):
            Circle(CROQUIS3_R, mode=Mode.SUBTRACT)
    extrude(amount=-SALIENTE_EXTRUIR2_DEPTH)


solid = part.part
